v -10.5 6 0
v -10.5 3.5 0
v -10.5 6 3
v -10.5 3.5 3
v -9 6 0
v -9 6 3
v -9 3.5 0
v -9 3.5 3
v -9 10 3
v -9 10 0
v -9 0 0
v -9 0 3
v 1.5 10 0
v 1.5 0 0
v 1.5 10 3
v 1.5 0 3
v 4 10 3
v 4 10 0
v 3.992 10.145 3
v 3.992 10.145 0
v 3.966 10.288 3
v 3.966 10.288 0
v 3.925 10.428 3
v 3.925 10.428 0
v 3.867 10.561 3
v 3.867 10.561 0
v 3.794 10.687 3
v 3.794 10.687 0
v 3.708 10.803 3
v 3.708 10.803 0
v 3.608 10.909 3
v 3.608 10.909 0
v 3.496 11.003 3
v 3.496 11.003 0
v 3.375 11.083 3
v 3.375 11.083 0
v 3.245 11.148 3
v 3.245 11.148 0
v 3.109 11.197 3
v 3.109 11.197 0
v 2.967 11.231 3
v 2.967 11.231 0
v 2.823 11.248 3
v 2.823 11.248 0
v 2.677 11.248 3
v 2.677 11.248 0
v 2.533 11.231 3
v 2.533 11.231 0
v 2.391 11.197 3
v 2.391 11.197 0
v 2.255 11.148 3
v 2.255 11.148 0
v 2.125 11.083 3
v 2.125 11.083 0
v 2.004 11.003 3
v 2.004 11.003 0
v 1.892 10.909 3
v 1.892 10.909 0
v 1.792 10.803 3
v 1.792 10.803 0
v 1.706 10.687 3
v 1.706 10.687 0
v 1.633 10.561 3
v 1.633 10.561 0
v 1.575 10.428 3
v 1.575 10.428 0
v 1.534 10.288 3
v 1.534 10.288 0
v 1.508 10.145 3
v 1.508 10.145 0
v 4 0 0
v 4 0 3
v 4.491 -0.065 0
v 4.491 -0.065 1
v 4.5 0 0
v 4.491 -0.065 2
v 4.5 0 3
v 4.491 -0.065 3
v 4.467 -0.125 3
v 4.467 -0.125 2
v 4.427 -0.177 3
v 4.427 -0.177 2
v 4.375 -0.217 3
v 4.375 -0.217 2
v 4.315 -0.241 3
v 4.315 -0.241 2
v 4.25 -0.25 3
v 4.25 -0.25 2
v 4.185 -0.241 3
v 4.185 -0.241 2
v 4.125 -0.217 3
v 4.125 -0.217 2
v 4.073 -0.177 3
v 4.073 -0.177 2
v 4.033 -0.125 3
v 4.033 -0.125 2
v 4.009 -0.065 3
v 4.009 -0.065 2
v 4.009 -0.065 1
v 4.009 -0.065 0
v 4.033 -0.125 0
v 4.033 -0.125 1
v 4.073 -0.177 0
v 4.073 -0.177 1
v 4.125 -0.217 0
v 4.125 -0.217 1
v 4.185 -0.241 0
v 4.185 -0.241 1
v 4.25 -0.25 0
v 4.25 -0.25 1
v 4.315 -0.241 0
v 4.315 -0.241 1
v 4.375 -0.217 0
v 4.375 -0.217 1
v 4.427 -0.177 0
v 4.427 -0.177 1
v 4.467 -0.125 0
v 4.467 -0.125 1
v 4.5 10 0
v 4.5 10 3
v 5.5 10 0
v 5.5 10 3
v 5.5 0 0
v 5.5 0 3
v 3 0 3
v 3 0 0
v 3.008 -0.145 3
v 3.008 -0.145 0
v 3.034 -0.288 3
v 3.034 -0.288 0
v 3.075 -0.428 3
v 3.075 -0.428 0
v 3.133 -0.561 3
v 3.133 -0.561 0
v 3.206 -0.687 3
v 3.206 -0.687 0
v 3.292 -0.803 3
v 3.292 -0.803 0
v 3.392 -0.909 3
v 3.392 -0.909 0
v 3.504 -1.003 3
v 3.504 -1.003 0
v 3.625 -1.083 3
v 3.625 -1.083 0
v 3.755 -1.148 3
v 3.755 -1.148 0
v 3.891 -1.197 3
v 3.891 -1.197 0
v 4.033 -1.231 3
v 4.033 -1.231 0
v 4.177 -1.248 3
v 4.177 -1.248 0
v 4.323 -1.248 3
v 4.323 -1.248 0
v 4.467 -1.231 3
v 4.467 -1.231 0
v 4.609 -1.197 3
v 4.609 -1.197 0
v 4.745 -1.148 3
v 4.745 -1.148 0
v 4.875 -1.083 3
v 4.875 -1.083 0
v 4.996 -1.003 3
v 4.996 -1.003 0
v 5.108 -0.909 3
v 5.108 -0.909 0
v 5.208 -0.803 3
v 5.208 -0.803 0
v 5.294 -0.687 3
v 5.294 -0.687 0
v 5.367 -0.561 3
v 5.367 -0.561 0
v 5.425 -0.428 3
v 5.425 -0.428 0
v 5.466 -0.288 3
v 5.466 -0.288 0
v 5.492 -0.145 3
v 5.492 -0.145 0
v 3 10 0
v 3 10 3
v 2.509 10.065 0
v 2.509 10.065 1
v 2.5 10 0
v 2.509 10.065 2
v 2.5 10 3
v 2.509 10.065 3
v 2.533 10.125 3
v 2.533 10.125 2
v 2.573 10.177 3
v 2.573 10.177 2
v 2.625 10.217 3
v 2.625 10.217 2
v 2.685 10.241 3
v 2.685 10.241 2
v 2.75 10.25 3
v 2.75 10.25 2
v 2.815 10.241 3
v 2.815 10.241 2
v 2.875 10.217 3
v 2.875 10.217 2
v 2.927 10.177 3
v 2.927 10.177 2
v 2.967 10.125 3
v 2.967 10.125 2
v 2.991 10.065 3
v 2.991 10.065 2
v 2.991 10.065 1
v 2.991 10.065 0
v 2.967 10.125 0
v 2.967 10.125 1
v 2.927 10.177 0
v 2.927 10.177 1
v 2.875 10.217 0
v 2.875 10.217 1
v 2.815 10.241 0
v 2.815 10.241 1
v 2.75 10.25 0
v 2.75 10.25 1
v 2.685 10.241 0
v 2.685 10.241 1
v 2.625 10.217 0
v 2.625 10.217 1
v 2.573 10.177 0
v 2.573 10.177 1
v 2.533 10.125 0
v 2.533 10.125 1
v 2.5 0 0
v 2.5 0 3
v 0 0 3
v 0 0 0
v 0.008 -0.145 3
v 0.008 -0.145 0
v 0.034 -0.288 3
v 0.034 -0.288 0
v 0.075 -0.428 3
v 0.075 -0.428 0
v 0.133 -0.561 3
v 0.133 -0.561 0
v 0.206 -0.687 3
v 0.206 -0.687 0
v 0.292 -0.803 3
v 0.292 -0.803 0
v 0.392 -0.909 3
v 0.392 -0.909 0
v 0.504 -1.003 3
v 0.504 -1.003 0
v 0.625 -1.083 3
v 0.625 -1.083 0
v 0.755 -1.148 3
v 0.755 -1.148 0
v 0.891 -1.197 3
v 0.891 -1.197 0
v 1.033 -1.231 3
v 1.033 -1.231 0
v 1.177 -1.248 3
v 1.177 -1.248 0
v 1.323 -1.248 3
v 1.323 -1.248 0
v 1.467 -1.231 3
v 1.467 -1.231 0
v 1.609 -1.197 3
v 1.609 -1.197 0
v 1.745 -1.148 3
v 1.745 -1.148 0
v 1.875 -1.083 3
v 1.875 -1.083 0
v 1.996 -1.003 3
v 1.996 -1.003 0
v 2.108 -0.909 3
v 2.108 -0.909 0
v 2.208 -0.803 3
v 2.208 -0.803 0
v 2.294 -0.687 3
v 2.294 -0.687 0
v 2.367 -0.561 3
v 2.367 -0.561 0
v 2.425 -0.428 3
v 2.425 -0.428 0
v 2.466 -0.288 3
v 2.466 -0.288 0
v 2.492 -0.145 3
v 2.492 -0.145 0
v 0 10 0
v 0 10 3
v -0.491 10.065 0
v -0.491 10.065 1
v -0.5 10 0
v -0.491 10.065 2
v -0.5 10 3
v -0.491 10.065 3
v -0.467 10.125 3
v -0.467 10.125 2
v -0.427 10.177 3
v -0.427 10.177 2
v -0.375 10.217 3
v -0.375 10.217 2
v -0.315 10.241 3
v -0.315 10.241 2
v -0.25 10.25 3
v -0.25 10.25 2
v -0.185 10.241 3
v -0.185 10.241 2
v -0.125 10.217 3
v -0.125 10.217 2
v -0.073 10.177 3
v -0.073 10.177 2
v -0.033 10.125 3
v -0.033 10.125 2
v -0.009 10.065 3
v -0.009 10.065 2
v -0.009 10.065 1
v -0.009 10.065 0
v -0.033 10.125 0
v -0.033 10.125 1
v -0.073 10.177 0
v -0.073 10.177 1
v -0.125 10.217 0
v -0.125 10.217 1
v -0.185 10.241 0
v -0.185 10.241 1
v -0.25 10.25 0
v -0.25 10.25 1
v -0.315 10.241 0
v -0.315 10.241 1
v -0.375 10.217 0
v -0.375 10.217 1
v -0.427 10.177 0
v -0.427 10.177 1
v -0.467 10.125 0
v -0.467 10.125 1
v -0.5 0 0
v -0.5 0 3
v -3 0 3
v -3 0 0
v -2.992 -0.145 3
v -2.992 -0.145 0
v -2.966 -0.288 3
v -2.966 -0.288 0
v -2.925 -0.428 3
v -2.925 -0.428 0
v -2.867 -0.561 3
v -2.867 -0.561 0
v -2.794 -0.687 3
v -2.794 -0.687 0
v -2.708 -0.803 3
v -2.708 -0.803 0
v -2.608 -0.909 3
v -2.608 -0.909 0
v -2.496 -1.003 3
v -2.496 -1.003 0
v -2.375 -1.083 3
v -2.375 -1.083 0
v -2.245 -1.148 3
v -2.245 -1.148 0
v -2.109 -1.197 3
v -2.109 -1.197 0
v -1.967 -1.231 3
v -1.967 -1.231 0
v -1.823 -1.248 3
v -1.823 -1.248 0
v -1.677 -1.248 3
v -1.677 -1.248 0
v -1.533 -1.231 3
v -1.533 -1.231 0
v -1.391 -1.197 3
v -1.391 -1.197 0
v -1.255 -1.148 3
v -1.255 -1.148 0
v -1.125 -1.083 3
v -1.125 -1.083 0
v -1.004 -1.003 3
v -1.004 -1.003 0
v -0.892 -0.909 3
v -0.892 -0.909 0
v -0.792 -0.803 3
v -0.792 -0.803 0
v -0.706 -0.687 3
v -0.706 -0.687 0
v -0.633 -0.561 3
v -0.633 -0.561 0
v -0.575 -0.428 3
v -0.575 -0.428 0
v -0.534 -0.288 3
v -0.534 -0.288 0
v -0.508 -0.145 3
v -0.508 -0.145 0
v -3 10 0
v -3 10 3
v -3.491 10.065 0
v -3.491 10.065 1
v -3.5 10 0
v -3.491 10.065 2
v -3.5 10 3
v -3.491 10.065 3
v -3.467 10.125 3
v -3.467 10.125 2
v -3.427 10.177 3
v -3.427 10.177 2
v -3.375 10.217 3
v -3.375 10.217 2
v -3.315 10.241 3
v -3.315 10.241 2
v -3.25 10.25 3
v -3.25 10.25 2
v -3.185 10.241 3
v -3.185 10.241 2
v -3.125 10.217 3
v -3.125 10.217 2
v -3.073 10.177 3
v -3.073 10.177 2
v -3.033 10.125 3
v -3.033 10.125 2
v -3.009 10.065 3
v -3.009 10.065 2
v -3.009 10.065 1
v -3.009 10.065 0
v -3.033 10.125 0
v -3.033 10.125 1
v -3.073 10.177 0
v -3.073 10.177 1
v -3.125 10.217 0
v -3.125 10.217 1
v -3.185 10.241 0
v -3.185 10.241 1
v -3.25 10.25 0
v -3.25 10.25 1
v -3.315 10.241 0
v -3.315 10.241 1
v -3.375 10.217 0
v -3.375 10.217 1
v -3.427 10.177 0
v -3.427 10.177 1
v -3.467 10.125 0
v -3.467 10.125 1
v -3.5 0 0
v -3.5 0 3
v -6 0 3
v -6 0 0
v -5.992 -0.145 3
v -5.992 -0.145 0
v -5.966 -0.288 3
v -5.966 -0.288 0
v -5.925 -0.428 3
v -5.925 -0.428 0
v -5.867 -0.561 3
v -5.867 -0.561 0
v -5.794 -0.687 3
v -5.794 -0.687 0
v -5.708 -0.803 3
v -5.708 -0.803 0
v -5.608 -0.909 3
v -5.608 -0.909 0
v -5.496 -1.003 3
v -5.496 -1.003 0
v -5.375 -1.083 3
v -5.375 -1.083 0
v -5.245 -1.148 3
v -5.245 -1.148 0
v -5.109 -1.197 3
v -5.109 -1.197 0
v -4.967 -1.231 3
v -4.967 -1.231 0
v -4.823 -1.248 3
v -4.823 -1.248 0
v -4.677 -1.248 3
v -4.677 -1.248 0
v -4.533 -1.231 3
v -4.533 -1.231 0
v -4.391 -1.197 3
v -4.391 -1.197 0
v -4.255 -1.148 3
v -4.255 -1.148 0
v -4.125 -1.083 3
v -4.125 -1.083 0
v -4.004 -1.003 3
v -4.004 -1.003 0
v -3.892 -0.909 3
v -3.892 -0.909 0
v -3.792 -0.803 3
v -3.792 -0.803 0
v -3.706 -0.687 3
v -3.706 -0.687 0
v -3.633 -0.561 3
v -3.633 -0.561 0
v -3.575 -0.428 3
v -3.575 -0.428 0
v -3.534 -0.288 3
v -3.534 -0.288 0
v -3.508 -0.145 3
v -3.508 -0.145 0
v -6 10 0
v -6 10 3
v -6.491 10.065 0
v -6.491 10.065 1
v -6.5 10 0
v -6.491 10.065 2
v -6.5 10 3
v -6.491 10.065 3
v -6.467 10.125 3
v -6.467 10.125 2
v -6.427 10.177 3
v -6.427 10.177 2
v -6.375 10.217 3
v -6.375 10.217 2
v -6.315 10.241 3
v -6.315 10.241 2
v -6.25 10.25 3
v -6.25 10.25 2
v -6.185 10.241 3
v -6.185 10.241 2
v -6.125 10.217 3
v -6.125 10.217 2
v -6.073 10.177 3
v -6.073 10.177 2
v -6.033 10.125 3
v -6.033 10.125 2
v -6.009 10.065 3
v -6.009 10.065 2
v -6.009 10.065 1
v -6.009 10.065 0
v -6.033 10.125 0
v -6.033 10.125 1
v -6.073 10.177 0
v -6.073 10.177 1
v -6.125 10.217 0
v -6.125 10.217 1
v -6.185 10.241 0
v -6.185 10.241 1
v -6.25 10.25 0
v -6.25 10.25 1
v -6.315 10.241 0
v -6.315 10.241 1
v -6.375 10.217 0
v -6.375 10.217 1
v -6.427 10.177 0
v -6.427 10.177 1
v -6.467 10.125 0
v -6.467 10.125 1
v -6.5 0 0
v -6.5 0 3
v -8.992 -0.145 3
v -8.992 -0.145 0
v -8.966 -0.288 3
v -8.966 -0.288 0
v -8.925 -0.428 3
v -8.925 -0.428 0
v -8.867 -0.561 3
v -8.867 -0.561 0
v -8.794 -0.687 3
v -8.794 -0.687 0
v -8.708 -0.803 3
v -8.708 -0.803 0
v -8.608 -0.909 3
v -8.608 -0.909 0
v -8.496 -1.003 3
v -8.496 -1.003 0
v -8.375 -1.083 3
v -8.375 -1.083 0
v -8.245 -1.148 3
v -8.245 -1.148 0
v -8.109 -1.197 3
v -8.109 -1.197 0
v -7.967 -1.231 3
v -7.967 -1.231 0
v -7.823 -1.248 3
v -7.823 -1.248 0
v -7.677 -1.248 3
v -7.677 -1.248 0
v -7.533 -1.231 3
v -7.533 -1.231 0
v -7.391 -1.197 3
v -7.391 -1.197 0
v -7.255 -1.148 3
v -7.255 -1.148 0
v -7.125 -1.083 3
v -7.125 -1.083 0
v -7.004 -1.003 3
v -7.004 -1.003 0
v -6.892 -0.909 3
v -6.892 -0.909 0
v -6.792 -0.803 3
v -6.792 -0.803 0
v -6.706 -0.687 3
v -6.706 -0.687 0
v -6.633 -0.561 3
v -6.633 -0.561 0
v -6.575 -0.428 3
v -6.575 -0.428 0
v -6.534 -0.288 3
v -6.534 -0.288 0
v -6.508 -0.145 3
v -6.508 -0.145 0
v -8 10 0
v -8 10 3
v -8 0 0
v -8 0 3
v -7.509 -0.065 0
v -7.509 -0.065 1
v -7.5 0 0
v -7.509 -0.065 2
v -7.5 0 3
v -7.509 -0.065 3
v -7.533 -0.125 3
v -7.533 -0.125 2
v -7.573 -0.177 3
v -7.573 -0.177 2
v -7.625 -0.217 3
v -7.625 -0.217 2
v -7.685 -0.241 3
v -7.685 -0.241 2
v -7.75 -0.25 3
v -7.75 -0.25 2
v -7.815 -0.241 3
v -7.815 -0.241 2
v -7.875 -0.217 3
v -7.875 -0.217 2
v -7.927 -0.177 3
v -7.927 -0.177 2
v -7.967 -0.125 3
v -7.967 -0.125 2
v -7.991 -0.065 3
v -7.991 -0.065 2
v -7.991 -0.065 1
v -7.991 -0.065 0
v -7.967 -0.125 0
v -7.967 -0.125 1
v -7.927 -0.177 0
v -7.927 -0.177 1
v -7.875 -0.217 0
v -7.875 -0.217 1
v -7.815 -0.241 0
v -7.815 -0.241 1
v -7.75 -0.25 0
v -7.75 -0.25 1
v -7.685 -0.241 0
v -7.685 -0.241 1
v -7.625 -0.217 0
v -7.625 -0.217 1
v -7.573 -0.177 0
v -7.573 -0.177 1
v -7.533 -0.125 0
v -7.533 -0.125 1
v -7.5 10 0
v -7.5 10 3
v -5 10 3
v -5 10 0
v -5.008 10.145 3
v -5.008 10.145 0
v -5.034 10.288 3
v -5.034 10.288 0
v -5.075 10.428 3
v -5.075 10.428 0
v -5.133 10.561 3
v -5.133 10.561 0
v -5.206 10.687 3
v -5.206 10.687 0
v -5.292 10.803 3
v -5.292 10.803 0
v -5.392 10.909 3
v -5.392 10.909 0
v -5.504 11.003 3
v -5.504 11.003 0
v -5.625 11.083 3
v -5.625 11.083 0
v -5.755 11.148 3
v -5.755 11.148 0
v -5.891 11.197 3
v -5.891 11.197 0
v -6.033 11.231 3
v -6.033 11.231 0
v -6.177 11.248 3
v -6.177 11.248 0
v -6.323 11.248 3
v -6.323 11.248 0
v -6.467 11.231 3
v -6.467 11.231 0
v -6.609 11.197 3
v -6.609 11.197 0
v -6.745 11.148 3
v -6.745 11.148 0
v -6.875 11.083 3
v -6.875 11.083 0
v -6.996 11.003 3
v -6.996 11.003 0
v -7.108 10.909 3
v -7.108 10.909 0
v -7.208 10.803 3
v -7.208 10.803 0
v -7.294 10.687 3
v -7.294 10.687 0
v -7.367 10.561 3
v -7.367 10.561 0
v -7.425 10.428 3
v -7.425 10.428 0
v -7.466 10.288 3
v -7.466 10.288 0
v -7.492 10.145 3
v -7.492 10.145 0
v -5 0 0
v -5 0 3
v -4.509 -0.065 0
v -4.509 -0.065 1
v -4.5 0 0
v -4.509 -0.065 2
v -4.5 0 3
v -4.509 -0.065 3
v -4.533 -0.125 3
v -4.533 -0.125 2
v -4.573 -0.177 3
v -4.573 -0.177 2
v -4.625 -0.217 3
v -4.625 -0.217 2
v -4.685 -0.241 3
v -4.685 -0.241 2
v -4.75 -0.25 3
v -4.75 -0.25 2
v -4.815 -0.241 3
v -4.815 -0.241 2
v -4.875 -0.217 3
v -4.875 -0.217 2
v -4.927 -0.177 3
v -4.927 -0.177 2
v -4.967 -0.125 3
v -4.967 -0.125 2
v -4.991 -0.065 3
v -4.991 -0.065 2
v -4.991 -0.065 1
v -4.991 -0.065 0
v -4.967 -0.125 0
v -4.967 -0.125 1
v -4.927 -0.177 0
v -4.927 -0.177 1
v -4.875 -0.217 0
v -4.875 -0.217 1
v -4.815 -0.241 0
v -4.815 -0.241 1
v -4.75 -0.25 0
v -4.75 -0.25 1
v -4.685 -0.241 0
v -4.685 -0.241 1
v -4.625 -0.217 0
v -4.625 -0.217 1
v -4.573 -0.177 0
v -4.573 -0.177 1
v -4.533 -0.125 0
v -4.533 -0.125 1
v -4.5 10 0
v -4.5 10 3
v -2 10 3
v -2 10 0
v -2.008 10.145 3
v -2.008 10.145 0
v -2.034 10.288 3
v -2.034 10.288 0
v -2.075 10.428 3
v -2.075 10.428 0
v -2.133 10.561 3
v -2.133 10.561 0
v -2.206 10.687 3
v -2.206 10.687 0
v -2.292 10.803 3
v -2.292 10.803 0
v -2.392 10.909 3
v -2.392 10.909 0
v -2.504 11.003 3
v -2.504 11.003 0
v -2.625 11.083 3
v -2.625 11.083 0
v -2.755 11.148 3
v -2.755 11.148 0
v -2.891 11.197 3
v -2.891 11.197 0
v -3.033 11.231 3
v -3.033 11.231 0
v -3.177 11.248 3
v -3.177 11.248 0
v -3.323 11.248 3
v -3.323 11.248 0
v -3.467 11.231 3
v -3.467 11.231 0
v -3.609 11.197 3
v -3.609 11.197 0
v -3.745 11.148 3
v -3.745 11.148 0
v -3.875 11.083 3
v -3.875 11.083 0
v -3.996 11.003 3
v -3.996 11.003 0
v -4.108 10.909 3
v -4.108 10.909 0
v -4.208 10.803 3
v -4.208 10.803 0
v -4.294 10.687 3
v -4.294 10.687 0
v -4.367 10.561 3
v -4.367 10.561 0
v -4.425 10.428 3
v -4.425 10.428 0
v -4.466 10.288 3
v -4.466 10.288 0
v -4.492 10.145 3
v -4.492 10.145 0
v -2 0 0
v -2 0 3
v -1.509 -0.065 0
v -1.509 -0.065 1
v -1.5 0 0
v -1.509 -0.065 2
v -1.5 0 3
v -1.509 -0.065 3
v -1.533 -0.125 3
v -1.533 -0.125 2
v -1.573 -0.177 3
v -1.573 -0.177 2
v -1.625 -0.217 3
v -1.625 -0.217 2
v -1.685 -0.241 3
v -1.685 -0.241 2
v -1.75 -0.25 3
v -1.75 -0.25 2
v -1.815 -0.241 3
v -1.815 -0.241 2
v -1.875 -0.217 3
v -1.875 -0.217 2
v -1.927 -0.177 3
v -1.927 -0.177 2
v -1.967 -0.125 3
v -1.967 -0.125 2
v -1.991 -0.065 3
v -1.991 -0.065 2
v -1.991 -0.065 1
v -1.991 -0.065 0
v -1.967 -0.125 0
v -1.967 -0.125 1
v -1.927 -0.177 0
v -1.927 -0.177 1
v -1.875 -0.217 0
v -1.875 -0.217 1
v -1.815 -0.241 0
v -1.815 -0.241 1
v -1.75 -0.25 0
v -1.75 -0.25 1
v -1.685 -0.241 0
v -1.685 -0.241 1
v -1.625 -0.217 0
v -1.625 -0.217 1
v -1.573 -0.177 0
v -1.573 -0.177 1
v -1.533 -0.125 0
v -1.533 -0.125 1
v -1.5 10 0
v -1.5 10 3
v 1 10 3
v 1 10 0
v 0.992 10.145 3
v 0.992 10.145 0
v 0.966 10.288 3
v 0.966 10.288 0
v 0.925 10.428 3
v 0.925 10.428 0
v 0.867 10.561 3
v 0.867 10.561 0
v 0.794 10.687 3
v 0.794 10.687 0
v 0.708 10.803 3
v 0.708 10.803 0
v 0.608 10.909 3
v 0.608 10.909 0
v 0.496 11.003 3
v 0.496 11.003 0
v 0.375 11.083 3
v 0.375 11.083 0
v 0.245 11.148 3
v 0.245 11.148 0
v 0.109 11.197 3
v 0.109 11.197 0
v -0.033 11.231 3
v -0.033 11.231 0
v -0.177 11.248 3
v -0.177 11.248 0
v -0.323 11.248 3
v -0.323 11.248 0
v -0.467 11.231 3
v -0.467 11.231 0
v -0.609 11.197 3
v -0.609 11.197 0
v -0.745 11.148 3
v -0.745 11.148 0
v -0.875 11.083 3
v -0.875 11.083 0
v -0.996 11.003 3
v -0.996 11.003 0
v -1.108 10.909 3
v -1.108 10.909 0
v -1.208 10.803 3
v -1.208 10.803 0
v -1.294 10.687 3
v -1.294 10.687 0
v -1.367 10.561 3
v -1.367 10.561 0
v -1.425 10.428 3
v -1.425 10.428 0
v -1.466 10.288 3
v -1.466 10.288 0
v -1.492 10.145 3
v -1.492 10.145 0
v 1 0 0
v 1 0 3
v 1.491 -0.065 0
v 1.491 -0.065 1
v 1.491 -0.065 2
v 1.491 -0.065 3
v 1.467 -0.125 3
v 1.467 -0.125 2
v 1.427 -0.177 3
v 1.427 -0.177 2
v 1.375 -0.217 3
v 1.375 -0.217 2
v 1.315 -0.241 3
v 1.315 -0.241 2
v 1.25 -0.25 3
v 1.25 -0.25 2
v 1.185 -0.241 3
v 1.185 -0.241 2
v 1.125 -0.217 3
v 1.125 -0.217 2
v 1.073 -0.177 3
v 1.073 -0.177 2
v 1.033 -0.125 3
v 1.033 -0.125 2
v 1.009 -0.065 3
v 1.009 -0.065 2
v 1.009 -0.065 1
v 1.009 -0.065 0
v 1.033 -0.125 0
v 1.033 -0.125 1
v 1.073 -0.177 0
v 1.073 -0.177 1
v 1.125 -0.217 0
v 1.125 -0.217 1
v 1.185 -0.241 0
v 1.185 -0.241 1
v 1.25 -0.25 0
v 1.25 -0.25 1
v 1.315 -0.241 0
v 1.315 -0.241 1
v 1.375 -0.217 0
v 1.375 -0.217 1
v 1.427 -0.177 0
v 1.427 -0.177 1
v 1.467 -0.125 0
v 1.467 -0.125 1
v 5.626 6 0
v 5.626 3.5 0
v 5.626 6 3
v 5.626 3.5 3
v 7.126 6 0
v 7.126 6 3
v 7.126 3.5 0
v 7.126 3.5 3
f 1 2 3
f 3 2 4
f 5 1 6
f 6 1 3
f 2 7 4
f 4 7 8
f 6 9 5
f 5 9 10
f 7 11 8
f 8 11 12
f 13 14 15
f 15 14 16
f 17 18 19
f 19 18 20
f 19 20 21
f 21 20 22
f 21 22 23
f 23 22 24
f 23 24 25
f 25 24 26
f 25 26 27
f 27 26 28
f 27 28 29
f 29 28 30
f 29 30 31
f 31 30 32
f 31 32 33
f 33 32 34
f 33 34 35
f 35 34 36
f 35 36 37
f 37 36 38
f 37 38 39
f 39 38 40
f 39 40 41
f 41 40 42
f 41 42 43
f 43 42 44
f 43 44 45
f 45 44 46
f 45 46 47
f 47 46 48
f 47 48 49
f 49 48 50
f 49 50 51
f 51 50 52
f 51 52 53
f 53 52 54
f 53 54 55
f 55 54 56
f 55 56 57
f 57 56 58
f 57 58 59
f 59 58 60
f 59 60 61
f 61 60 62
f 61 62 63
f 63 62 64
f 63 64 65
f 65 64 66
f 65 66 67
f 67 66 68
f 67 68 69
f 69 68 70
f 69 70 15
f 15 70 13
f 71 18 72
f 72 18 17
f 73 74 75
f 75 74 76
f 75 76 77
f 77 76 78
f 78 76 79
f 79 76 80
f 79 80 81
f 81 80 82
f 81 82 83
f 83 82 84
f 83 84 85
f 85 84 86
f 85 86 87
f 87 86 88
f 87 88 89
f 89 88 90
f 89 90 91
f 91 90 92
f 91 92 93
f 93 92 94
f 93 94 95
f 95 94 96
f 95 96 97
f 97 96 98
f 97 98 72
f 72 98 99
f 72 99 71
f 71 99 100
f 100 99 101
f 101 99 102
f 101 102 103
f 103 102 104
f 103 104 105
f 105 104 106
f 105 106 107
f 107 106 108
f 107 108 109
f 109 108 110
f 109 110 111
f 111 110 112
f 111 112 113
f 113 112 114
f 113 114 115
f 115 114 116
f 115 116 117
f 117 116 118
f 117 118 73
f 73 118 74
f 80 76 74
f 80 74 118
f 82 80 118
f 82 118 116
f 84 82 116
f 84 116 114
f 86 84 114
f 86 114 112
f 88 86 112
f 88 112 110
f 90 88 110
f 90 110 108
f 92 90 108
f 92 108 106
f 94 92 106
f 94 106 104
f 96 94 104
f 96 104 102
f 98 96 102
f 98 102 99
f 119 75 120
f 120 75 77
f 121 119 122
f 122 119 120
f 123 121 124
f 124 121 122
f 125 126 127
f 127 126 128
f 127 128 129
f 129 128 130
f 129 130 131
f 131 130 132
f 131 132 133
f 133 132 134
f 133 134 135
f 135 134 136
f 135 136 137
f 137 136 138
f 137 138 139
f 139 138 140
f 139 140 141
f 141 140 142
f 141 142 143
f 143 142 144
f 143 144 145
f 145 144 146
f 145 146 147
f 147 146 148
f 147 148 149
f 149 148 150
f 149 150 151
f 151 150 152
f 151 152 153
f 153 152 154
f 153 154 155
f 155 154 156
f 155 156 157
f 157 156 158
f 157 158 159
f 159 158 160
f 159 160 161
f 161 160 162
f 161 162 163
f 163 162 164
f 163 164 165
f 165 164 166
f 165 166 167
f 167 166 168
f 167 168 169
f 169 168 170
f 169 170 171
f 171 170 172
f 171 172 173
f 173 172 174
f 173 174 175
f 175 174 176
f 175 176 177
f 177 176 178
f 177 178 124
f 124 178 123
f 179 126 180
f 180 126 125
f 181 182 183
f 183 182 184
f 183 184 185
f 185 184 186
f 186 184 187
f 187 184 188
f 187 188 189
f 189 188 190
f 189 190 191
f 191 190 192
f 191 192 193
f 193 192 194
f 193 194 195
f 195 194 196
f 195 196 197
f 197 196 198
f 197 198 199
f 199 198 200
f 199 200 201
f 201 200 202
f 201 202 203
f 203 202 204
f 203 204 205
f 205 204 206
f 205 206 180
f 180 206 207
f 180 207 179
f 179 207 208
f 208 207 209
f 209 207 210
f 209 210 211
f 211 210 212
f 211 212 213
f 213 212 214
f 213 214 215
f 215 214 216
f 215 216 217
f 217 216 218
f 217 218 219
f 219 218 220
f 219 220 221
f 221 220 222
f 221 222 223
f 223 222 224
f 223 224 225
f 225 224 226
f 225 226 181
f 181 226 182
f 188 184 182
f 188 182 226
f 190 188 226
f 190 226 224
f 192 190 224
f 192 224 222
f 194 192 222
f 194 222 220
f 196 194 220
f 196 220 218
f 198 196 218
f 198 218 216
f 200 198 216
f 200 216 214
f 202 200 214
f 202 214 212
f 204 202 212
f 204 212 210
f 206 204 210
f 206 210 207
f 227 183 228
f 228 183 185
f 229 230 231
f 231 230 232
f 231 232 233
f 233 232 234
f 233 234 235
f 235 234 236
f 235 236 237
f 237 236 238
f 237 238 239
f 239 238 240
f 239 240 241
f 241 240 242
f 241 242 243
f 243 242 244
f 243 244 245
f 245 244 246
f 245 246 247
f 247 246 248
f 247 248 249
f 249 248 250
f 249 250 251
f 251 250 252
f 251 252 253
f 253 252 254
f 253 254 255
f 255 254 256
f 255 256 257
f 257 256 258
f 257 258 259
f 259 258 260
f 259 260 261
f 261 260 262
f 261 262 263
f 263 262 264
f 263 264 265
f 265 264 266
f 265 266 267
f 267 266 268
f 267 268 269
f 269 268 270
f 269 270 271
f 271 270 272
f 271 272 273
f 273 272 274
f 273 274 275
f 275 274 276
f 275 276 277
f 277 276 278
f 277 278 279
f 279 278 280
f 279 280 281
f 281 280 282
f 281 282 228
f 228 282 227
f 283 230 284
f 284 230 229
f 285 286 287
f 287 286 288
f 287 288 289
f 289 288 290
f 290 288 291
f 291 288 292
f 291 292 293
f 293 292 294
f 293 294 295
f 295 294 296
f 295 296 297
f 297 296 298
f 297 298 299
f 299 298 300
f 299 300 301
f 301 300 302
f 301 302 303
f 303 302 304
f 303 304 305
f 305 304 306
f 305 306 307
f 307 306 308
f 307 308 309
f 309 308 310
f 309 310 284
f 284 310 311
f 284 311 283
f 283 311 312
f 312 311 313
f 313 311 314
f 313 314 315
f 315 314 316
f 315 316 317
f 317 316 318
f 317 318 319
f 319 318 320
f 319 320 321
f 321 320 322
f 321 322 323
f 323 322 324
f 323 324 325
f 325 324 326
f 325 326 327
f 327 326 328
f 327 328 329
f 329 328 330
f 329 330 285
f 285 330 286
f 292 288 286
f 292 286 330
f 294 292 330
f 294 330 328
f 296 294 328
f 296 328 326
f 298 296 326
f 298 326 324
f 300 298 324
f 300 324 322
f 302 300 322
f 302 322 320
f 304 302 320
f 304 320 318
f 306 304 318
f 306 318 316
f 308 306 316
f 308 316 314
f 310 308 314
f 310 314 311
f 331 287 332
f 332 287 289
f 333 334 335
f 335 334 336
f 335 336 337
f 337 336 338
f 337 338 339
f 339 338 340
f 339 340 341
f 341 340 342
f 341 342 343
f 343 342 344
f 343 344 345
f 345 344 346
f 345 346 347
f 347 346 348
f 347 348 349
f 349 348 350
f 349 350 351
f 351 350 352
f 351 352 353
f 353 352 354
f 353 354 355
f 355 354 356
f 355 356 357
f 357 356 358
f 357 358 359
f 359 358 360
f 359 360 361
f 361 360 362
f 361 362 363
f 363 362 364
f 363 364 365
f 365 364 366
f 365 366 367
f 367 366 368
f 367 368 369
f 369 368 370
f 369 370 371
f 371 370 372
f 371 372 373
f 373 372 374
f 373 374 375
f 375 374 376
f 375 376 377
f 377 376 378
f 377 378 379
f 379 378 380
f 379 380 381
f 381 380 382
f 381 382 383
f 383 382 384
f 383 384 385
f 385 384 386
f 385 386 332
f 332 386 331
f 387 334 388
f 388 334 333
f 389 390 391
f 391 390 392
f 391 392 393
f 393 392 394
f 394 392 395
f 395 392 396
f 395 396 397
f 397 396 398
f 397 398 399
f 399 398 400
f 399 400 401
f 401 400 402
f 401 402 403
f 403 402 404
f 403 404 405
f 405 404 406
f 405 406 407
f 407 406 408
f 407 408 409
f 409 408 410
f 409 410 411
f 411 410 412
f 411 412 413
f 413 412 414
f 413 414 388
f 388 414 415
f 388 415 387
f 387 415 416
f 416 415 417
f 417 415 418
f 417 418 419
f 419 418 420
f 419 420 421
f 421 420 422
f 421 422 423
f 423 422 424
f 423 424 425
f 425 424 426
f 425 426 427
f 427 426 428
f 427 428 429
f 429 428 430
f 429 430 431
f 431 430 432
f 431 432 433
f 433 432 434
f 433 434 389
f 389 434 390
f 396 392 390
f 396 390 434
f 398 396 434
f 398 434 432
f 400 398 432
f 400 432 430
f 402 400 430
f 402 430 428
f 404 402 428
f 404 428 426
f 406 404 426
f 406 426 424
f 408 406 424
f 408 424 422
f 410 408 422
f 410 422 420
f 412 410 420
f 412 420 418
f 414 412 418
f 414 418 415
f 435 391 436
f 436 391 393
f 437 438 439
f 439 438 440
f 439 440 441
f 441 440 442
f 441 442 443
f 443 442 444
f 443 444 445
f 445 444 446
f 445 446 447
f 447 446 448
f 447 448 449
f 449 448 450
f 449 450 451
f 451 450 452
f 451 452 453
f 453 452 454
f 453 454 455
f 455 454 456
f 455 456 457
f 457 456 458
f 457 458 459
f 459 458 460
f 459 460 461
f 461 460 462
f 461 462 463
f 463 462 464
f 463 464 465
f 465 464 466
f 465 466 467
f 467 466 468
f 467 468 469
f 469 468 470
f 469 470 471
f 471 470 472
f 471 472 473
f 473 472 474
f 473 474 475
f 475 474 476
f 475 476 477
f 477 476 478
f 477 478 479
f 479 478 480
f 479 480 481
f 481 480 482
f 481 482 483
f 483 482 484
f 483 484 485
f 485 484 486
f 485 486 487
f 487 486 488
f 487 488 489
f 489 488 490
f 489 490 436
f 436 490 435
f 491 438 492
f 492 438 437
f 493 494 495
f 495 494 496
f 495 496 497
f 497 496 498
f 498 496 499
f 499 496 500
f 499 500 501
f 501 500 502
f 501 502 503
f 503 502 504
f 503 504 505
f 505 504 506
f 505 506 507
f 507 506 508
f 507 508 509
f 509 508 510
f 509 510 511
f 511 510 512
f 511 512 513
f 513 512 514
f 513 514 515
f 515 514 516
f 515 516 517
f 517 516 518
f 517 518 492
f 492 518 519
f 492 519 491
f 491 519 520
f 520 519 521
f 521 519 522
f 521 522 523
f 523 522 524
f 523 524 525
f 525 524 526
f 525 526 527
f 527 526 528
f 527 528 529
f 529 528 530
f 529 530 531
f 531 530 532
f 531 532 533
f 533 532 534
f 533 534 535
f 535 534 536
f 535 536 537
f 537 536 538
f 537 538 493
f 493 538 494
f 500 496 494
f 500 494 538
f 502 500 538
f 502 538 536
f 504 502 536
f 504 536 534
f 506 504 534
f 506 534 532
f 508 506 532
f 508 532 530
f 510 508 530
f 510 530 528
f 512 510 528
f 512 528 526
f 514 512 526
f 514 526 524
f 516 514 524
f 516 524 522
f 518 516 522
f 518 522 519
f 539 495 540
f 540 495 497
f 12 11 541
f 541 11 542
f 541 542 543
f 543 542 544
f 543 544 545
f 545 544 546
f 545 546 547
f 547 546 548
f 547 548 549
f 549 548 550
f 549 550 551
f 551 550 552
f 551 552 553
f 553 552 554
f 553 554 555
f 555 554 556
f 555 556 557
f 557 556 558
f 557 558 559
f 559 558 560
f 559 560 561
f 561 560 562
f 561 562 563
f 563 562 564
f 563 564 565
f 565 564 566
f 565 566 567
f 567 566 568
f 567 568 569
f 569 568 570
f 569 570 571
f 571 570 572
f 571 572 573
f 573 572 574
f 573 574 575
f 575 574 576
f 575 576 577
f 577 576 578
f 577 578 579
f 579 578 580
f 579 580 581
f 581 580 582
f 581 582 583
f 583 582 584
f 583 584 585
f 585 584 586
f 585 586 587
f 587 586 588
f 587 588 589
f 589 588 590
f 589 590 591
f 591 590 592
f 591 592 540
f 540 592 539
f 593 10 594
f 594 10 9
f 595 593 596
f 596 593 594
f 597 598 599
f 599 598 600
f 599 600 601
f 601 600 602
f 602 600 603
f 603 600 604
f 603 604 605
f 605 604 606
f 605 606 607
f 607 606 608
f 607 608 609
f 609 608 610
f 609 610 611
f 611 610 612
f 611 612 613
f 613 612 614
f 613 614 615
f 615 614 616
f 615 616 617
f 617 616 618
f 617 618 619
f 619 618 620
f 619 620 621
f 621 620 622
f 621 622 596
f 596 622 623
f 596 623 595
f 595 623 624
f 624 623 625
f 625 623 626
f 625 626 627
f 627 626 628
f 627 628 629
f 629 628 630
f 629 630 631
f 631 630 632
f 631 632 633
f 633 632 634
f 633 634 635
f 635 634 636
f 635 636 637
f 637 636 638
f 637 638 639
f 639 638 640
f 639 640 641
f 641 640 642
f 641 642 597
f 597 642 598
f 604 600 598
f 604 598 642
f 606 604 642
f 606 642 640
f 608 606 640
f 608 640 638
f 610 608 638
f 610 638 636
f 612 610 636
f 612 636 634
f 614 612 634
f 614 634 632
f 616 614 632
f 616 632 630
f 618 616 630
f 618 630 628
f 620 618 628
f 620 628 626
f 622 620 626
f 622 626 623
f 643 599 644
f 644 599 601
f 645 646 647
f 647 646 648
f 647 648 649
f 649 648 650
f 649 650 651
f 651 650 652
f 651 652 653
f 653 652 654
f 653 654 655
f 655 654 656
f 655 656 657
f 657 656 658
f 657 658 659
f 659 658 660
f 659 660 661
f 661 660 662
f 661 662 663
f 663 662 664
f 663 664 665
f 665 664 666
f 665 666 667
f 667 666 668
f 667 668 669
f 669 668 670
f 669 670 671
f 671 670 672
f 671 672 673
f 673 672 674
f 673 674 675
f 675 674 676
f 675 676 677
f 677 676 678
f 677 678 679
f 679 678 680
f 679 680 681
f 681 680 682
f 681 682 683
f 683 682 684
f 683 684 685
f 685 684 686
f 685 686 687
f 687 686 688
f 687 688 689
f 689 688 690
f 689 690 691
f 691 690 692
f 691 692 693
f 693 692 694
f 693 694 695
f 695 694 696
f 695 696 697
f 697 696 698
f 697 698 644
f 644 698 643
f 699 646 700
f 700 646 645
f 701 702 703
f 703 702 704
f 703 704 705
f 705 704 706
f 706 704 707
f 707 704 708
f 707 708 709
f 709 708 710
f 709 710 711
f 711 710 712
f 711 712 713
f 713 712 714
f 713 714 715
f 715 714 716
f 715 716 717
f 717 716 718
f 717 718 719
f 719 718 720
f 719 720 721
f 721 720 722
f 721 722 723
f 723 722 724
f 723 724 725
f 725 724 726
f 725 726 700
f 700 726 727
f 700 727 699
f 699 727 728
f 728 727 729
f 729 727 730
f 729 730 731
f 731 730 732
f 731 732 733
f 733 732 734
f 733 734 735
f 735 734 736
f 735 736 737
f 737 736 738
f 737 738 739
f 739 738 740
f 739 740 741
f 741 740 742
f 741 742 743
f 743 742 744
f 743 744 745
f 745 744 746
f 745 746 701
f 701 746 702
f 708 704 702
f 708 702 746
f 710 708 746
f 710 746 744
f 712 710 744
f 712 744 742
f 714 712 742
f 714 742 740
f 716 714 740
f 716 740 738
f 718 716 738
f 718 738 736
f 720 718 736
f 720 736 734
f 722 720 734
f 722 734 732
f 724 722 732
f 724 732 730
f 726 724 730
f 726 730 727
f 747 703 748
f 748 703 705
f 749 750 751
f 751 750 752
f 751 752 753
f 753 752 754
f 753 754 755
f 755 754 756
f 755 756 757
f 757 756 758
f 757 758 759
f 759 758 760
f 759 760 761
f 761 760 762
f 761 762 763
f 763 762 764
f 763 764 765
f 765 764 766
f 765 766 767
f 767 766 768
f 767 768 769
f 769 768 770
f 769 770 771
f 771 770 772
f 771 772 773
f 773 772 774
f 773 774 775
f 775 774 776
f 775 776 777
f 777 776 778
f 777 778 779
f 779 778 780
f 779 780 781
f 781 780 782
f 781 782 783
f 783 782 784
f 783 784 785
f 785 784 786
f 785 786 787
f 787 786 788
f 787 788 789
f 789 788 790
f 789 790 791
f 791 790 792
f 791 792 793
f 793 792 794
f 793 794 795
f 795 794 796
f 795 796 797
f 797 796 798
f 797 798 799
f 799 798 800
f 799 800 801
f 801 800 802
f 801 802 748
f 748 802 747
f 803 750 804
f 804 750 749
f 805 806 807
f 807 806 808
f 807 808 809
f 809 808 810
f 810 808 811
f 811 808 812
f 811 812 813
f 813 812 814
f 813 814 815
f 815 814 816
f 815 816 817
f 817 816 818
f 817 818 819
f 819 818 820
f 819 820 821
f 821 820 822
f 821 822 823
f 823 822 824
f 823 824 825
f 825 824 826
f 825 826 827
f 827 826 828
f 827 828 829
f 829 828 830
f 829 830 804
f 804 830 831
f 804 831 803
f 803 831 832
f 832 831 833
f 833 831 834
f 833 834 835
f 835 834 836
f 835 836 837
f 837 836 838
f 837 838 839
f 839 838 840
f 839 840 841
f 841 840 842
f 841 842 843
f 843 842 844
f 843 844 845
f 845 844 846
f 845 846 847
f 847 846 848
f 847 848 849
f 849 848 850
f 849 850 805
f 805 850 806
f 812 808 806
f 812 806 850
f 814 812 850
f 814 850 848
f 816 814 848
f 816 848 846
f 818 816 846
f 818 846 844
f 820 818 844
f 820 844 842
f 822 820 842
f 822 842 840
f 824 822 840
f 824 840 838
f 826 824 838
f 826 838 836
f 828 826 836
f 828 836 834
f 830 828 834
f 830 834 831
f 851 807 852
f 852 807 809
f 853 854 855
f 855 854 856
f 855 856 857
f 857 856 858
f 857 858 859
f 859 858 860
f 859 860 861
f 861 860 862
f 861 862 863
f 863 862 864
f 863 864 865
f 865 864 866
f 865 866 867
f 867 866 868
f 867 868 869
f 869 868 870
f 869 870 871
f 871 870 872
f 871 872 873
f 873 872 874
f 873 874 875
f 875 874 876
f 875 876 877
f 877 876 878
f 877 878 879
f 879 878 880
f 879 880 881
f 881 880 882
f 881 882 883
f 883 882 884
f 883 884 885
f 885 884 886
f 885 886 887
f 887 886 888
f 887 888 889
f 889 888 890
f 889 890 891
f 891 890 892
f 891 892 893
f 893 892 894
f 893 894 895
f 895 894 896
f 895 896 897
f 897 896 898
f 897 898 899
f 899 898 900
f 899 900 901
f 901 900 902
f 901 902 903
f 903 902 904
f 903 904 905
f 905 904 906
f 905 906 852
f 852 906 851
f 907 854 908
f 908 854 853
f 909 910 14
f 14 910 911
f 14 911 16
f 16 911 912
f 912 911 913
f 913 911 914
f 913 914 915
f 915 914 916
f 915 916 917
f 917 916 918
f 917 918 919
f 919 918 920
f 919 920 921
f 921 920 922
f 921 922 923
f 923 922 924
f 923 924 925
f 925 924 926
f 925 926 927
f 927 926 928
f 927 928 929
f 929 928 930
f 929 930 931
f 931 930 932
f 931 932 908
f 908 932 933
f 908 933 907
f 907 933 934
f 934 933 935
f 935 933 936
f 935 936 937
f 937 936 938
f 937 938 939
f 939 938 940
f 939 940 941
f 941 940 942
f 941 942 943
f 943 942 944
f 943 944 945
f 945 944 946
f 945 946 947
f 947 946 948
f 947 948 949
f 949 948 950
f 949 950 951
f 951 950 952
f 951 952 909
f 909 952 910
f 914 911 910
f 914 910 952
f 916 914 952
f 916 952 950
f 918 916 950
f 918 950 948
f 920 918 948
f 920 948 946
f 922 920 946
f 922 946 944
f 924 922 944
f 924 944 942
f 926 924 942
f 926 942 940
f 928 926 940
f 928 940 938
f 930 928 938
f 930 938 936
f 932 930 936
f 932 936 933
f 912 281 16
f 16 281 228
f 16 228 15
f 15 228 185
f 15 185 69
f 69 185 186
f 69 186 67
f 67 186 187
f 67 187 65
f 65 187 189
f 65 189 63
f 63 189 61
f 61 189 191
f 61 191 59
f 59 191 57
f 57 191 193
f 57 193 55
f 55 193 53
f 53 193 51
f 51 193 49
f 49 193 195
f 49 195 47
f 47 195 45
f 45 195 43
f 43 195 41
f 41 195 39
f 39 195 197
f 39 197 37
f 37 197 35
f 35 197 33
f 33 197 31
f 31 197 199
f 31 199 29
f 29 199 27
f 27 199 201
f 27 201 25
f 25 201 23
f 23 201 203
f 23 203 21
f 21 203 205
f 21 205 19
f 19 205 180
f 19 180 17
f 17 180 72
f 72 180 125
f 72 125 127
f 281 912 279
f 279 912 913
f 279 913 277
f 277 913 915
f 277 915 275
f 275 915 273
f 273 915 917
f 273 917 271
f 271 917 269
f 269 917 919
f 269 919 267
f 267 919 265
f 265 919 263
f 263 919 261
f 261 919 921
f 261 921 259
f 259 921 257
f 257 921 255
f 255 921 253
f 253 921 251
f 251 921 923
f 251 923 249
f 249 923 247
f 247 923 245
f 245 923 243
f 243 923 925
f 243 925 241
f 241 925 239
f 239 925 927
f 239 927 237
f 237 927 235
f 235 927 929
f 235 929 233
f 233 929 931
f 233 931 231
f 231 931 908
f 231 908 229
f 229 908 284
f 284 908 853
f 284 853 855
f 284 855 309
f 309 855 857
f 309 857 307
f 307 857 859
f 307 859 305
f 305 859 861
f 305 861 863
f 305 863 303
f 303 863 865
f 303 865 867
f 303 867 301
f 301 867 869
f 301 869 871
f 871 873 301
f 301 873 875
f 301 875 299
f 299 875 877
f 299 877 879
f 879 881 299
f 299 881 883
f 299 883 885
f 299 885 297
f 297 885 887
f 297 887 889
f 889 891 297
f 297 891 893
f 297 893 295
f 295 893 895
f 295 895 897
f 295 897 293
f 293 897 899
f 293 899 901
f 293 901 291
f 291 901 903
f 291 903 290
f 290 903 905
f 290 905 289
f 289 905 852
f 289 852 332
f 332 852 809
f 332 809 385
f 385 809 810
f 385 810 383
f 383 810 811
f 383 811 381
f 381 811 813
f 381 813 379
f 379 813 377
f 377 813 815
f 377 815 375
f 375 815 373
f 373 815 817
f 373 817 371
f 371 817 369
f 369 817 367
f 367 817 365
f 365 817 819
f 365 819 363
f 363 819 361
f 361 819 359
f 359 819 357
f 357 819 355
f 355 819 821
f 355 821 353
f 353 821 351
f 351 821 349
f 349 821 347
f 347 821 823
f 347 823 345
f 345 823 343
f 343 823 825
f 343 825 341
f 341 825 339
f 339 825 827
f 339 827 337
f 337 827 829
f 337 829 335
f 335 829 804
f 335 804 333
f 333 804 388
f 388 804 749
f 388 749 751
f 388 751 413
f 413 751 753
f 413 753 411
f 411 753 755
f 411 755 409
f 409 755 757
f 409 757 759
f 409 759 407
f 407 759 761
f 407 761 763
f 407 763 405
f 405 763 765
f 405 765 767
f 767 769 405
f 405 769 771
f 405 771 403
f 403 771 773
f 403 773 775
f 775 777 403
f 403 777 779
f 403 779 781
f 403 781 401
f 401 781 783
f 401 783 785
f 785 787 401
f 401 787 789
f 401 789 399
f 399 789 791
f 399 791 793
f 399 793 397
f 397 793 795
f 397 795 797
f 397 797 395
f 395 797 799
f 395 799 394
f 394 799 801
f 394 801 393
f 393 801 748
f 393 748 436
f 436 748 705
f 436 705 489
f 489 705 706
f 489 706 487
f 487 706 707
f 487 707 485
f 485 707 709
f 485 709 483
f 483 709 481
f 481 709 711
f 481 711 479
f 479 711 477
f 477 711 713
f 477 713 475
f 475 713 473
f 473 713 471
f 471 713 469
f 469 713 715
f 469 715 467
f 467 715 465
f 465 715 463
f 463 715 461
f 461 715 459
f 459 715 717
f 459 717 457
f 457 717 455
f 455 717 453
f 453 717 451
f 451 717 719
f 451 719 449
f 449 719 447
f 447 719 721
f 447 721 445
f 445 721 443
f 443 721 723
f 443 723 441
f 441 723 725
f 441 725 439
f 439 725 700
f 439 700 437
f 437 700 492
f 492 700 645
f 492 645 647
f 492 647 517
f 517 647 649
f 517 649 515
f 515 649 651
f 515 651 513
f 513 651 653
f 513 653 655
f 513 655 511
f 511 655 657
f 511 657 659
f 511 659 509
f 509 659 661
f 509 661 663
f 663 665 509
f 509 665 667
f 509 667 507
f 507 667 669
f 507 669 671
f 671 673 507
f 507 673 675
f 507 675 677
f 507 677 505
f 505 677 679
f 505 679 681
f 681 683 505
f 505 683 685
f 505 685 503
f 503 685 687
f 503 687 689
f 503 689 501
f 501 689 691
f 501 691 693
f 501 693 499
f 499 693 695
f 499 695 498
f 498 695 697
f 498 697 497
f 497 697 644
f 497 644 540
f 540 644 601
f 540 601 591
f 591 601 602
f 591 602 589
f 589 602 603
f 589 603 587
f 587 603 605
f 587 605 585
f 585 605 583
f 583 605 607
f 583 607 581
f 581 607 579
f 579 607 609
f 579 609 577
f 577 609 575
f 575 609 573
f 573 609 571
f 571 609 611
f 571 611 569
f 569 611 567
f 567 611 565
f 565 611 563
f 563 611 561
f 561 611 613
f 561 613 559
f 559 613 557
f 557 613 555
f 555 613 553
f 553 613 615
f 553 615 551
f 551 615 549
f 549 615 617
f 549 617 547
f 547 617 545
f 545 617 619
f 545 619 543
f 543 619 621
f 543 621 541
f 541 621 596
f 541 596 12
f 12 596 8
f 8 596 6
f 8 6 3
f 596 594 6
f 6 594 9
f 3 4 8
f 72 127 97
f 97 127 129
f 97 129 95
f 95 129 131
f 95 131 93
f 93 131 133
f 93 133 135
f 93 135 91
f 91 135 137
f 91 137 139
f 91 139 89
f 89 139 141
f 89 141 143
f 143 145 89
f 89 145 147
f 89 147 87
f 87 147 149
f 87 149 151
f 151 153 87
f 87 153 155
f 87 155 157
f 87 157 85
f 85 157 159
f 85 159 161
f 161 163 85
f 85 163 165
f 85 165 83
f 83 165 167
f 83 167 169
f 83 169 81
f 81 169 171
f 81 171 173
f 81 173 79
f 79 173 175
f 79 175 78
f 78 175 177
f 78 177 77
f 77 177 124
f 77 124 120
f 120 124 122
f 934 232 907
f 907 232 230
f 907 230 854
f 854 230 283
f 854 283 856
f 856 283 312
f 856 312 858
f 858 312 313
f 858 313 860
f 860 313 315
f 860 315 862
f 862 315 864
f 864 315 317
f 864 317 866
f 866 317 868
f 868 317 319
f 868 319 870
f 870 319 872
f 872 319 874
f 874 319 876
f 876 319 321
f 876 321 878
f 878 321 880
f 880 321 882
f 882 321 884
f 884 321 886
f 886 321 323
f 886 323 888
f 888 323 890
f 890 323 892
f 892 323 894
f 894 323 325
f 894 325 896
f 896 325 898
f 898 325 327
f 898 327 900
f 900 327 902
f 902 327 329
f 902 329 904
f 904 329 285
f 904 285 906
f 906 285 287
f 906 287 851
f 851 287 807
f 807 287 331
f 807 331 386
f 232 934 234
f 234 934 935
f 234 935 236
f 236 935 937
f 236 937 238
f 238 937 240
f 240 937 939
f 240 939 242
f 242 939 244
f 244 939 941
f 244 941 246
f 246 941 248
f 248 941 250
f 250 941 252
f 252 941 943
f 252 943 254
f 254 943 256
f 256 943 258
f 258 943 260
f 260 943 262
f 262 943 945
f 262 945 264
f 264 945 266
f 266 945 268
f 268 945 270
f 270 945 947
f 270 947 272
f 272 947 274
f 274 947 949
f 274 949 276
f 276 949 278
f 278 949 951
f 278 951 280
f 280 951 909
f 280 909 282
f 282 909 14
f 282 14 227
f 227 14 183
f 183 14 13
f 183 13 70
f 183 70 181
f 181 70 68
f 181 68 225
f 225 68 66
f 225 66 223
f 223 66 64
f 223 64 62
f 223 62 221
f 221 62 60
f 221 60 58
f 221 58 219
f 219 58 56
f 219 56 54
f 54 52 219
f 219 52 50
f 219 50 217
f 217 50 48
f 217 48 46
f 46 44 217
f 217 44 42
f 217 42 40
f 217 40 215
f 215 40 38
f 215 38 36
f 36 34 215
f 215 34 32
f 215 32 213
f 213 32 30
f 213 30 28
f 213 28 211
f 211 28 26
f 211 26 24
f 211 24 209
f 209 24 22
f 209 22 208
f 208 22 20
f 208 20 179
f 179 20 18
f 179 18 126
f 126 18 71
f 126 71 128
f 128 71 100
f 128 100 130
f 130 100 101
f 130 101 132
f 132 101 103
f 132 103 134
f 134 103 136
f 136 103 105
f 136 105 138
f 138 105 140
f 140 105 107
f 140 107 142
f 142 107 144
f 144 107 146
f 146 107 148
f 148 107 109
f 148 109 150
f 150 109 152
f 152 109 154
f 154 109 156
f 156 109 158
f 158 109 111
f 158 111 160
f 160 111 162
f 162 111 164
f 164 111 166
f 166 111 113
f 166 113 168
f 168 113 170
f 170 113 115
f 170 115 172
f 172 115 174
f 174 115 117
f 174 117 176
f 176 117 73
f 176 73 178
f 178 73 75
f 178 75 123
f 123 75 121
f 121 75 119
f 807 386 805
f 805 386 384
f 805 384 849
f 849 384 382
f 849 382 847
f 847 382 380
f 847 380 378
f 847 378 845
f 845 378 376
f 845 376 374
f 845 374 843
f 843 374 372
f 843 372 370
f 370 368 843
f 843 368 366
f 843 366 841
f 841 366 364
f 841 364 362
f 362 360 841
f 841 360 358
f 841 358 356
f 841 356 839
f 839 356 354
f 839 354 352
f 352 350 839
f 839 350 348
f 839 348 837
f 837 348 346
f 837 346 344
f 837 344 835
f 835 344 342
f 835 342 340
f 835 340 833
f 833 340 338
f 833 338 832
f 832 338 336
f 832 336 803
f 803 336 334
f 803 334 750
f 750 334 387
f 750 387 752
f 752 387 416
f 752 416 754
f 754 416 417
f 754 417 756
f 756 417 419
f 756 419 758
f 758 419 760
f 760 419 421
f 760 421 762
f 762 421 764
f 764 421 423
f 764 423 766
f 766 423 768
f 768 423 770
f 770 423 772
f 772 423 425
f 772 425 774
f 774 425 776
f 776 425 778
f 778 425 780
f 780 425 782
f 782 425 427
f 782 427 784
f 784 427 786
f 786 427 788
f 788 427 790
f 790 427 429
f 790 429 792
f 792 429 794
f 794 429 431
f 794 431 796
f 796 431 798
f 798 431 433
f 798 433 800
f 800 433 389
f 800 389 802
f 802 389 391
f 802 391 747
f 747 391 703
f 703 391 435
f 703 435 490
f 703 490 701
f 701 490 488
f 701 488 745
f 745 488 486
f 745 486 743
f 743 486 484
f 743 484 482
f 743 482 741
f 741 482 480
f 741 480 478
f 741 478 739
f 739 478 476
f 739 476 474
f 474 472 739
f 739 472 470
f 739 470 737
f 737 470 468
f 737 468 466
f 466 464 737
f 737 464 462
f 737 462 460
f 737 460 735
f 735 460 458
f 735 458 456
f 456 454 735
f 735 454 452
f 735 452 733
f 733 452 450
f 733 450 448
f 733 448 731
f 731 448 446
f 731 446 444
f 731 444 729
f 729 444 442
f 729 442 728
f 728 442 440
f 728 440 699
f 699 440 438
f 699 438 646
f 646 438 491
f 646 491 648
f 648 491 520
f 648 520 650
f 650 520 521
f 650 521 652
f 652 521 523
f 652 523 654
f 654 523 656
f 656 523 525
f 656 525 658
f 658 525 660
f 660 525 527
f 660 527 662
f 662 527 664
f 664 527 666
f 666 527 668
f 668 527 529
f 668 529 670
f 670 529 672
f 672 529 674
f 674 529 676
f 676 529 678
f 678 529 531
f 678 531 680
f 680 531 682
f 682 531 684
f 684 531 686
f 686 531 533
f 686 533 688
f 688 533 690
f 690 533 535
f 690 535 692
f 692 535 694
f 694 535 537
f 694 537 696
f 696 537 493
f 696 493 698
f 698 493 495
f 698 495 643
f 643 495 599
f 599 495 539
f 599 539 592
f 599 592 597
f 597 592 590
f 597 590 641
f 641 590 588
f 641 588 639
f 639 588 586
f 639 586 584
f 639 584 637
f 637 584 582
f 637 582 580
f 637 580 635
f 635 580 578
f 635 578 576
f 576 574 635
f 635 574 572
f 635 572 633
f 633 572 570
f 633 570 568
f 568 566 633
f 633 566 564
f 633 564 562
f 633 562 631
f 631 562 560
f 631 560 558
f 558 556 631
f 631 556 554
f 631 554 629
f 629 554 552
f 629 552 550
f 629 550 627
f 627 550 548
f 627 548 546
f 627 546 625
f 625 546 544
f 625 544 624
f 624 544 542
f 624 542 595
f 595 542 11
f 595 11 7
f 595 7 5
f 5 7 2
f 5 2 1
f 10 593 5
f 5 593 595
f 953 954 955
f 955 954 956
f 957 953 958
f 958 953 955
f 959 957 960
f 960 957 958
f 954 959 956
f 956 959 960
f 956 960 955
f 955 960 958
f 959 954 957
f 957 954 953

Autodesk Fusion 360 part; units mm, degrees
sketch "Sketch2" plane through (0, 0, 0) normal (0, 0, 1) x (1, 0, 0)
  line L0 (-0.5, 10) -> (-0.5, 0)
  line L1 (-1.5, 0) -> (-1.5, 10)
  line L2 (-2, 10) -> (-2, 0)
  line L3 (-3, 0) -> (-3, 10)
  arc A0 (-3, 0) -> (-0.5, 0) centre (-1.75, 0) ccw
  arc A1 (-2, 0) -> (-1.5, 0) centre (-1.75, 0) ccw
  arc A2 (0, 10) -> (-0.5, 10) centre (-0.25, 10) ccw
  arc A3 (1, 10) -> (-1.5, 10) centre (-0.25, 10) ccw
  line L4 (2.5, 10) -> (2.5, 0)
  line L5 (1.5, 0) -> (1.5, 10)
  line L6 (4, 0) -> (4, 10)
  line L7 (3, 10) -> (3, 0)
  line L8 (5.5, 10) -> (5.5, 0)
  line L9 (4.5, 0) -> (4.5, 10)
  arc A4 (1, 0) -> (1.5, 0) centre (1.25, 0) ccw
  arc A5 (3, 10) -> (2.5, 10) centre (2.75, 10) ccw
  arc A6 (4, 0) -> (4.5, 0) centre (4.25, 0) ccw
  arc A7 (0, 0) -> (2.5, 0) centre (1.25, 0) ccw
  arc A8 (4, 10) -> (1.5, 10) centre (2.75, 10) ccw
  arc A9 (3, 0) -> (5.5, 0) centre (4.25, 0) ccw
  line L10 (4.5, 10) -> (5.5, 10)
  line L11 (-4.5, 10) -> (-4.5, 0)
  line L12 (-3.5, 0) -> (-3.5, 10)
  line L13 (-6, 10) -> (-6, 0)
  line L14 (-5, 0) -> (-5, 10)
  arc A10 (-3, 10) -> (-3.5, 10) centre (-3.25, 10) ccw
  arc A11 (-2, 10) -> (-4.5, 10) centre (-3.25, 10) ccw
  arc A12 (-5, 0) -> (-4.5, 0) centre (-4.75, 0) ccw
  arc A13 (-6, 0) -> (-3.5, 0) centre (-4.75, 0) ccw
  line L15 (-7.5, 10) -> (-7.5, 0)
  line L16 (-6.5, 0) -> (-6.5, 10)
  line L17 (-9, 10) -> (-9, 0)
  line L18 (-8, 0) -> (-8, 10)
  arc A14 (-6, 10) -> (-6.5, 10) centre (-6.25, 10) ccw
  arc A15 (-5, 10) -> (-7.5, 10) centre (-6.25, 10) ccw
  arc A16 (-8, 0) -> (-7.5, 0) centre (-7.75, 0) ccw
  arc A17 (-9, 0) -> (-6.5, 0) centre (-7.75, 0) ccw
  line L19 (-9, 10) -> (-8, 10)
  line L20 (-10, 5) -> (-9, 5)
  line L21 (-9, 5) -> (-9, 3.5)
  line L22 (-9, 3.5) -> (-10, 3.5)
  line L23 (-10, 3.5) -> (-10, 5)
  line L24 (5.5, 5) -> (6.5, 5)
  line L25 (6.5, 5) -> (6.5, 3.5)
  line L26 (6.5, 3.5) -> (5.5, 3.5)
  line L27 (5.5, 3.5) -> (5.5, 5)
  line L28 (0, 10) -> (0, 0)
  line L29 (1, 0) -> (1, 10)
extrude "Extrude1" add sketch "Sketch2" along normal blind 3 contours L0 L1 L2 L3 A0 A1 A2 A3 L4 L5 L6 L7 L8 L9 A4 A5 A6 A7 A8 A9 L10 L11 L12 L13 L14 A10 A11 A12 A13 L15 L16 L17 L18 A14 A15 A16 A17 L19 L21 L27 L28 L29 makes body 1
sketch "Sketch3" plane through (0, 0, 0) normal (0, 0, 1) x (1, 0, 0)
  line L0 (-10.5, 6) -> (-9, 6)
  line L1 (-9, 6) -> (-9, 3.5)
  line L2 (-9, 3.5) -> (-10.5, 3.5)
  line L3 (-10.5, 3.5) -> (-10.5, 6)
  line L4 (5.6259, 6) -> (7.1259, 6)
  line L5 (7.1259, 6) -> (7.1259, 3.5)
  line L6 (7.1259, 3.5) -> (5.6259, 3.5)
  line L7 (5.6259, 3.5) -> (5.6259, 6)
  dimension "d5" = 1.5
extrude "Extrude2" add sketch "Sketch3" along normal blind 3 bodies 1 makes body 2 at (7.1259, 5.1667, 1)
